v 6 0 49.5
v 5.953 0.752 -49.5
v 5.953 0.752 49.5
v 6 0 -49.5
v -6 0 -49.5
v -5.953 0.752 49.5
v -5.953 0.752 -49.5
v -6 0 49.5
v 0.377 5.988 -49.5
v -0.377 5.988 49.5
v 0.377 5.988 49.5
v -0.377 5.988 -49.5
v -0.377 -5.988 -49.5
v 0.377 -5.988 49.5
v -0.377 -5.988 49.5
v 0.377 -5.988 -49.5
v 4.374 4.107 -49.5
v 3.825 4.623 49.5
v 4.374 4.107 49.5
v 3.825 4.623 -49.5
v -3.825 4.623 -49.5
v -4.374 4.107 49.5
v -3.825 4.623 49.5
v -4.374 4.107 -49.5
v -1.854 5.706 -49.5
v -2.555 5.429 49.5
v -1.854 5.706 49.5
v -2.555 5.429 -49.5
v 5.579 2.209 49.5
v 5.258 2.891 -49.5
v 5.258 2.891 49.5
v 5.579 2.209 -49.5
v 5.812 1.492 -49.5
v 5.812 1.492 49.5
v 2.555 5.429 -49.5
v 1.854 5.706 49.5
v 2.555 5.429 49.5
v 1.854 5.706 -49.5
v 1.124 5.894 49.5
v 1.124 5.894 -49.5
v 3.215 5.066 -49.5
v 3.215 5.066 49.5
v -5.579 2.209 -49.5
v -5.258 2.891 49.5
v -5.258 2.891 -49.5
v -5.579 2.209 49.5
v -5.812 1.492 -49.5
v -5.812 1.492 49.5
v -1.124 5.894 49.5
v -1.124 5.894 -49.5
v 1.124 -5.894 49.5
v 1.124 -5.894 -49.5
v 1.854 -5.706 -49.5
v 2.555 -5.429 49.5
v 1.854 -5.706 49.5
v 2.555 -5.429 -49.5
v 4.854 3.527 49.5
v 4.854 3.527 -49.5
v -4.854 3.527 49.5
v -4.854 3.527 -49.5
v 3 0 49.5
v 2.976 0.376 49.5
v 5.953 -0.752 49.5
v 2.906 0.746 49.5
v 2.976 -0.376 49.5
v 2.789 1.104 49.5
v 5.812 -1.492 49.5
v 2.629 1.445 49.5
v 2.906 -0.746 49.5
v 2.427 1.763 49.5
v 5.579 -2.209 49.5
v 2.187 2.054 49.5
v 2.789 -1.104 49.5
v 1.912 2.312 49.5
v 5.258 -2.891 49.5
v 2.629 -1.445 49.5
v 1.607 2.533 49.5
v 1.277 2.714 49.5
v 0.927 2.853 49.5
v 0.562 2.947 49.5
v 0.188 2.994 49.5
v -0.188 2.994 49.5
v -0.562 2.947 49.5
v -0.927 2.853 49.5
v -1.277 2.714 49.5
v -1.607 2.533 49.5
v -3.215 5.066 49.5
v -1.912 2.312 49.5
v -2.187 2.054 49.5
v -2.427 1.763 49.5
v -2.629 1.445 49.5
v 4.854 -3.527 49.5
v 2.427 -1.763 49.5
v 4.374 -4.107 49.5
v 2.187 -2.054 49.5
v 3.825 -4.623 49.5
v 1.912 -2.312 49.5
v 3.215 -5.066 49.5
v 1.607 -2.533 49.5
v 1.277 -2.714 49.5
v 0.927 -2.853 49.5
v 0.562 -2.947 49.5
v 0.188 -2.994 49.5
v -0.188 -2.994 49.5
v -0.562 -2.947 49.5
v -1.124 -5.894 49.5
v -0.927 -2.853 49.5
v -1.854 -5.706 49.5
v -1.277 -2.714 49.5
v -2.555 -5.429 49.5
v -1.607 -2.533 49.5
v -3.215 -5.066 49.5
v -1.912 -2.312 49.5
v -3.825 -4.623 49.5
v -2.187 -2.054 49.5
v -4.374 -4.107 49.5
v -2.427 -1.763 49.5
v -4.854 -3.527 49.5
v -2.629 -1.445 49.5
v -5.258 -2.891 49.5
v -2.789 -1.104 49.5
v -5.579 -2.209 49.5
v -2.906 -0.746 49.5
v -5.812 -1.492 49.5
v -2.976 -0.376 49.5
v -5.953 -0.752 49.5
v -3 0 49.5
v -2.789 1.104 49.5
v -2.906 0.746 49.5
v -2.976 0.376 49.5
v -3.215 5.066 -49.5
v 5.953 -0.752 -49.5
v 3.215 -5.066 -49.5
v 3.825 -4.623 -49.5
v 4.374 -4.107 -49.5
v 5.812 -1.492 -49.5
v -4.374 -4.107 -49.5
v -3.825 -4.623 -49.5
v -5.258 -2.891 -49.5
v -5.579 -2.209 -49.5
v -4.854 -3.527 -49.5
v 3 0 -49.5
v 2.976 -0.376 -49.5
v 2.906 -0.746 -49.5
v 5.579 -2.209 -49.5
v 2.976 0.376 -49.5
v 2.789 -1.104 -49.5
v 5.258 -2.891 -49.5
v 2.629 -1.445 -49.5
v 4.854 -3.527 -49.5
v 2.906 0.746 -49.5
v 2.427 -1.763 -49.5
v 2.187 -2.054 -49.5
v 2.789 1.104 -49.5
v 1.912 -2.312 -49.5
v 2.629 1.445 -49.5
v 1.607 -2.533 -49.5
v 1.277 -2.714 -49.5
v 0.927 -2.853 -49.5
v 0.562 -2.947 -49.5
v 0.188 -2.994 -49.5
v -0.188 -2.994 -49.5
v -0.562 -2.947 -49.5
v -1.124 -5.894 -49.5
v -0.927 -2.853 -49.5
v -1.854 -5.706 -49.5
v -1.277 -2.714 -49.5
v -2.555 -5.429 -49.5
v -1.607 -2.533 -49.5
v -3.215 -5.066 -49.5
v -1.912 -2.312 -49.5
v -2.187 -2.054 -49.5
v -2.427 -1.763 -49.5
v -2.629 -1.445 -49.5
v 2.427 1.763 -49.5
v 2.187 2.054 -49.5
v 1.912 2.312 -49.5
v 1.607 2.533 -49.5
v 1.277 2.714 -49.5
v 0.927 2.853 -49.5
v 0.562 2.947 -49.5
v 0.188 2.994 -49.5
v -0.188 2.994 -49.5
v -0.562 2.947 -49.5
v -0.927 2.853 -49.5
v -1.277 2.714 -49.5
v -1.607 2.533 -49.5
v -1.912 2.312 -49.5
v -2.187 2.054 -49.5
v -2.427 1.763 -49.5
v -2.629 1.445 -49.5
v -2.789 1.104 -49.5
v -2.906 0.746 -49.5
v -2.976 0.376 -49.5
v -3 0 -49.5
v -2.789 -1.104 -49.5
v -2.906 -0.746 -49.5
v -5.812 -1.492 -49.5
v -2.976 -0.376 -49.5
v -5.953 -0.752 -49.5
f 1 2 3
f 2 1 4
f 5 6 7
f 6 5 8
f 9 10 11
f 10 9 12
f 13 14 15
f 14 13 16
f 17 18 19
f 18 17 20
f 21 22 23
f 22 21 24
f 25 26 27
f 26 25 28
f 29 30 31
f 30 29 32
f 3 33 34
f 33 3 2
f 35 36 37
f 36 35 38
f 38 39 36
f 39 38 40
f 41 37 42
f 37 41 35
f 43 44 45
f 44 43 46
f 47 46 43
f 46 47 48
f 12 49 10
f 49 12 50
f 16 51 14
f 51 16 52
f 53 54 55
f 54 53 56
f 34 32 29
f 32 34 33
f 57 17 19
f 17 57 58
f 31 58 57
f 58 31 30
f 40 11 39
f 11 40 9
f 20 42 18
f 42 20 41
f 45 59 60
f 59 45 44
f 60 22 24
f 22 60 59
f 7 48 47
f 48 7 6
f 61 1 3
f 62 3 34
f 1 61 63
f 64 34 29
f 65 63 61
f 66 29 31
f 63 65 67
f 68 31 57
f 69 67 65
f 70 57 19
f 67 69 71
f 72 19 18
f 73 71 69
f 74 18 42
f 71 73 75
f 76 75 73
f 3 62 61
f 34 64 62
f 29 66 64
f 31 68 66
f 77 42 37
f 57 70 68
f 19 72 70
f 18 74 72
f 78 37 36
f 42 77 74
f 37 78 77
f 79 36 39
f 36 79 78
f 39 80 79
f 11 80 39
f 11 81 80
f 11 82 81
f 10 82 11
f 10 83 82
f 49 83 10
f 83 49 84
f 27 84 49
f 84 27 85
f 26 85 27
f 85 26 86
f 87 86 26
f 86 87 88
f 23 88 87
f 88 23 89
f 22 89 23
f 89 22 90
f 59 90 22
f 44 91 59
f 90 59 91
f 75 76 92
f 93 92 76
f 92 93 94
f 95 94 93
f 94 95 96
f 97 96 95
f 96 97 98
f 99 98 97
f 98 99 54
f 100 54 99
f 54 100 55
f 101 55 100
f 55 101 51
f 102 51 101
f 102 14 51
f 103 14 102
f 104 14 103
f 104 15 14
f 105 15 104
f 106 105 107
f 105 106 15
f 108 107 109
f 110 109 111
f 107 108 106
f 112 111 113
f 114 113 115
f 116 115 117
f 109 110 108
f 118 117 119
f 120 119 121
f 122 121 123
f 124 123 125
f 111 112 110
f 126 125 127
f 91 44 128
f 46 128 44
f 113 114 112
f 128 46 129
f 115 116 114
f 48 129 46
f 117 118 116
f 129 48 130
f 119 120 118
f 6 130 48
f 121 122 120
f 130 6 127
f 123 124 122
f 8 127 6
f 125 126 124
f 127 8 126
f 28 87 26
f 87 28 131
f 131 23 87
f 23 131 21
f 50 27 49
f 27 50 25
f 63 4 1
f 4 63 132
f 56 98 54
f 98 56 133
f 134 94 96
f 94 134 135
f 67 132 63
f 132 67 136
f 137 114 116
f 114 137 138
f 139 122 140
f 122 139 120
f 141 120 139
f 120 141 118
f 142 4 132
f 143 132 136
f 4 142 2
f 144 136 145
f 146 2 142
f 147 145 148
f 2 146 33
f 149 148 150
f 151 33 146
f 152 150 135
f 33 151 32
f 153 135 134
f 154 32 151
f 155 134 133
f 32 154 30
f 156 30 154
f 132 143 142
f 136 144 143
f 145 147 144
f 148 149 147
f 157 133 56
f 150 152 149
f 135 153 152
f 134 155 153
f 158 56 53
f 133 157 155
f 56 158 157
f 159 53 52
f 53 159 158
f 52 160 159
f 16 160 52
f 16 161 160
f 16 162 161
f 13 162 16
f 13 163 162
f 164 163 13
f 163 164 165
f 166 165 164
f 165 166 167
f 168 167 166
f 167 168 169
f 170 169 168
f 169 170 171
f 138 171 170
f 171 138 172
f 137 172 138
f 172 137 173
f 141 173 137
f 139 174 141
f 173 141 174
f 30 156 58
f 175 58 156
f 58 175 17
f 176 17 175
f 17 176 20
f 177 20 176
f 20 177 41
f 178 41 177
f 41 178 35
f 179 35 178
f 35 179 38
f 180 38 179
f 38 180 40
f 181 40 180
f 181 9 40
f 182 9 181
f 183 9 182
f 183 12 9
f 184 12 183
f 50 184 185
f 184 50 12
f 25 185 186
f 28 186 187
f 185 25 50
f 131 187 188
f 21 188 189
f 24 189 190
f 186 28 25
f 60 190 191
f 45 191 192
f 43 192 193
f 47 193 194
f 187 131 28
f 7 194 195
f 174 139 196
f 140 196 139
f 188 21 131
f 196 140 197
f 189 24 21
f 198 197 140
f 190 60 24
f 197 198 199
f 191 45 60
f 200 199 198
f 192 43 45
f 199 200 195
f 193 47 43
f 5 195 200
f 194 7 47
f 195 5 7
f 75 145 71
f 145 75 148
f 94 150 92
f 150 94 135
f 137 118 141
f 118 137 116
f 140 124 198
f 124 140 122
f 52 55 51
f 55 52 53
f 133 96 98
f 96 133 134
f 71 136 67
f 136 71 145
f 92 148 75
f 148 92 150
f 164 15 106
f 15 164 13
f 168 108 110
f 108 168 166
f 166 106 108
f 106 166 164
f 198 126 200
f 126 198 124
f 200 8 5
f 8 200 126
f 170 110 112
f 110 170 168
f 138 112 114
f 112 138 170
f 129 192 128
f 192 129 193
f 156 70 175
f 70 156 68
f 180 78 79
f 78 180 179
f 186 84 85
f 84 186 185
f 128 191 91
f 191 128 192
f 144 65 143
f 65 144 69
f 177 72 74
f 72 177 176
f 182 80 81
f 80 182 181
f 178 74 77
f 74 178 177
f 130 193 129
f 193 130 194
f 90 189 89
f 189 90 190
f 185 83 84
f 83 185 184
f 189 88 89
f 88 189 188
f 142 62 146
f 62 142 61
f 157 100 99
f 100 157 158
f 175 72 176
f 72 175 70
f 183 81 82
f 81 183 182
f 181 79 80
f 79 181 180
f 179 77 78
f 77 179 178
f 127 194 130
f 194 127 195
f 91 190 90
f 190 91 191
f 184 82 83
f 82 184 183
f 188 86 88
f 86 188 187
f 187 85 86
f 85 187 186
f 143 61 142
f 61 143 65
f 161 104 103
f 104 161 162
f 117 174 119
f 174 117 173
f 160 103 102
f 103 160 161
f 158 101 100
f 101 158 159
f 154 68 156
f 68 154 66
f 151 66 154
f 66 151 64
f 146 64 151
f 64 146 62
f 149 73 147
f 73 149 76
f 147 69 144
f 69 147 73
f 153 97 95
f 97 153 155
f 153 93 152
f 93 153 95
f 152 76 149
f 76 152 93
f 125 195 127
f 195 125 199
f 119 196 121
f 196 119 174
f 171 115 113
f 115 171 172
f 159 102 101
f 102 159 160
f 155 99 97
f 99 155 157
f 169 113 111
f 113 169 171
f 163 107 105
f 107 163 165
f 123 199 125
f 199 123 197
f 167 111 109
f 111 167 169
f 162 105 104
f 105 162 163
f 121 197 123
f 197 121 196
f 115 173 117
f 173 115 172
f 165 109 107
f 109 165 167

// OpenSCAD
$fn = 50;


difference() {
	union() {
		translate(v = [0, 0, -49.5000000000]) {
			cylinder(h = 99, r = 6.0000000000);
		}
	}
	union() {
		translate(v = [0, 0, -100.0000000000]) {
			cylinder(h = 200, r = 3);
		}
	}
}
